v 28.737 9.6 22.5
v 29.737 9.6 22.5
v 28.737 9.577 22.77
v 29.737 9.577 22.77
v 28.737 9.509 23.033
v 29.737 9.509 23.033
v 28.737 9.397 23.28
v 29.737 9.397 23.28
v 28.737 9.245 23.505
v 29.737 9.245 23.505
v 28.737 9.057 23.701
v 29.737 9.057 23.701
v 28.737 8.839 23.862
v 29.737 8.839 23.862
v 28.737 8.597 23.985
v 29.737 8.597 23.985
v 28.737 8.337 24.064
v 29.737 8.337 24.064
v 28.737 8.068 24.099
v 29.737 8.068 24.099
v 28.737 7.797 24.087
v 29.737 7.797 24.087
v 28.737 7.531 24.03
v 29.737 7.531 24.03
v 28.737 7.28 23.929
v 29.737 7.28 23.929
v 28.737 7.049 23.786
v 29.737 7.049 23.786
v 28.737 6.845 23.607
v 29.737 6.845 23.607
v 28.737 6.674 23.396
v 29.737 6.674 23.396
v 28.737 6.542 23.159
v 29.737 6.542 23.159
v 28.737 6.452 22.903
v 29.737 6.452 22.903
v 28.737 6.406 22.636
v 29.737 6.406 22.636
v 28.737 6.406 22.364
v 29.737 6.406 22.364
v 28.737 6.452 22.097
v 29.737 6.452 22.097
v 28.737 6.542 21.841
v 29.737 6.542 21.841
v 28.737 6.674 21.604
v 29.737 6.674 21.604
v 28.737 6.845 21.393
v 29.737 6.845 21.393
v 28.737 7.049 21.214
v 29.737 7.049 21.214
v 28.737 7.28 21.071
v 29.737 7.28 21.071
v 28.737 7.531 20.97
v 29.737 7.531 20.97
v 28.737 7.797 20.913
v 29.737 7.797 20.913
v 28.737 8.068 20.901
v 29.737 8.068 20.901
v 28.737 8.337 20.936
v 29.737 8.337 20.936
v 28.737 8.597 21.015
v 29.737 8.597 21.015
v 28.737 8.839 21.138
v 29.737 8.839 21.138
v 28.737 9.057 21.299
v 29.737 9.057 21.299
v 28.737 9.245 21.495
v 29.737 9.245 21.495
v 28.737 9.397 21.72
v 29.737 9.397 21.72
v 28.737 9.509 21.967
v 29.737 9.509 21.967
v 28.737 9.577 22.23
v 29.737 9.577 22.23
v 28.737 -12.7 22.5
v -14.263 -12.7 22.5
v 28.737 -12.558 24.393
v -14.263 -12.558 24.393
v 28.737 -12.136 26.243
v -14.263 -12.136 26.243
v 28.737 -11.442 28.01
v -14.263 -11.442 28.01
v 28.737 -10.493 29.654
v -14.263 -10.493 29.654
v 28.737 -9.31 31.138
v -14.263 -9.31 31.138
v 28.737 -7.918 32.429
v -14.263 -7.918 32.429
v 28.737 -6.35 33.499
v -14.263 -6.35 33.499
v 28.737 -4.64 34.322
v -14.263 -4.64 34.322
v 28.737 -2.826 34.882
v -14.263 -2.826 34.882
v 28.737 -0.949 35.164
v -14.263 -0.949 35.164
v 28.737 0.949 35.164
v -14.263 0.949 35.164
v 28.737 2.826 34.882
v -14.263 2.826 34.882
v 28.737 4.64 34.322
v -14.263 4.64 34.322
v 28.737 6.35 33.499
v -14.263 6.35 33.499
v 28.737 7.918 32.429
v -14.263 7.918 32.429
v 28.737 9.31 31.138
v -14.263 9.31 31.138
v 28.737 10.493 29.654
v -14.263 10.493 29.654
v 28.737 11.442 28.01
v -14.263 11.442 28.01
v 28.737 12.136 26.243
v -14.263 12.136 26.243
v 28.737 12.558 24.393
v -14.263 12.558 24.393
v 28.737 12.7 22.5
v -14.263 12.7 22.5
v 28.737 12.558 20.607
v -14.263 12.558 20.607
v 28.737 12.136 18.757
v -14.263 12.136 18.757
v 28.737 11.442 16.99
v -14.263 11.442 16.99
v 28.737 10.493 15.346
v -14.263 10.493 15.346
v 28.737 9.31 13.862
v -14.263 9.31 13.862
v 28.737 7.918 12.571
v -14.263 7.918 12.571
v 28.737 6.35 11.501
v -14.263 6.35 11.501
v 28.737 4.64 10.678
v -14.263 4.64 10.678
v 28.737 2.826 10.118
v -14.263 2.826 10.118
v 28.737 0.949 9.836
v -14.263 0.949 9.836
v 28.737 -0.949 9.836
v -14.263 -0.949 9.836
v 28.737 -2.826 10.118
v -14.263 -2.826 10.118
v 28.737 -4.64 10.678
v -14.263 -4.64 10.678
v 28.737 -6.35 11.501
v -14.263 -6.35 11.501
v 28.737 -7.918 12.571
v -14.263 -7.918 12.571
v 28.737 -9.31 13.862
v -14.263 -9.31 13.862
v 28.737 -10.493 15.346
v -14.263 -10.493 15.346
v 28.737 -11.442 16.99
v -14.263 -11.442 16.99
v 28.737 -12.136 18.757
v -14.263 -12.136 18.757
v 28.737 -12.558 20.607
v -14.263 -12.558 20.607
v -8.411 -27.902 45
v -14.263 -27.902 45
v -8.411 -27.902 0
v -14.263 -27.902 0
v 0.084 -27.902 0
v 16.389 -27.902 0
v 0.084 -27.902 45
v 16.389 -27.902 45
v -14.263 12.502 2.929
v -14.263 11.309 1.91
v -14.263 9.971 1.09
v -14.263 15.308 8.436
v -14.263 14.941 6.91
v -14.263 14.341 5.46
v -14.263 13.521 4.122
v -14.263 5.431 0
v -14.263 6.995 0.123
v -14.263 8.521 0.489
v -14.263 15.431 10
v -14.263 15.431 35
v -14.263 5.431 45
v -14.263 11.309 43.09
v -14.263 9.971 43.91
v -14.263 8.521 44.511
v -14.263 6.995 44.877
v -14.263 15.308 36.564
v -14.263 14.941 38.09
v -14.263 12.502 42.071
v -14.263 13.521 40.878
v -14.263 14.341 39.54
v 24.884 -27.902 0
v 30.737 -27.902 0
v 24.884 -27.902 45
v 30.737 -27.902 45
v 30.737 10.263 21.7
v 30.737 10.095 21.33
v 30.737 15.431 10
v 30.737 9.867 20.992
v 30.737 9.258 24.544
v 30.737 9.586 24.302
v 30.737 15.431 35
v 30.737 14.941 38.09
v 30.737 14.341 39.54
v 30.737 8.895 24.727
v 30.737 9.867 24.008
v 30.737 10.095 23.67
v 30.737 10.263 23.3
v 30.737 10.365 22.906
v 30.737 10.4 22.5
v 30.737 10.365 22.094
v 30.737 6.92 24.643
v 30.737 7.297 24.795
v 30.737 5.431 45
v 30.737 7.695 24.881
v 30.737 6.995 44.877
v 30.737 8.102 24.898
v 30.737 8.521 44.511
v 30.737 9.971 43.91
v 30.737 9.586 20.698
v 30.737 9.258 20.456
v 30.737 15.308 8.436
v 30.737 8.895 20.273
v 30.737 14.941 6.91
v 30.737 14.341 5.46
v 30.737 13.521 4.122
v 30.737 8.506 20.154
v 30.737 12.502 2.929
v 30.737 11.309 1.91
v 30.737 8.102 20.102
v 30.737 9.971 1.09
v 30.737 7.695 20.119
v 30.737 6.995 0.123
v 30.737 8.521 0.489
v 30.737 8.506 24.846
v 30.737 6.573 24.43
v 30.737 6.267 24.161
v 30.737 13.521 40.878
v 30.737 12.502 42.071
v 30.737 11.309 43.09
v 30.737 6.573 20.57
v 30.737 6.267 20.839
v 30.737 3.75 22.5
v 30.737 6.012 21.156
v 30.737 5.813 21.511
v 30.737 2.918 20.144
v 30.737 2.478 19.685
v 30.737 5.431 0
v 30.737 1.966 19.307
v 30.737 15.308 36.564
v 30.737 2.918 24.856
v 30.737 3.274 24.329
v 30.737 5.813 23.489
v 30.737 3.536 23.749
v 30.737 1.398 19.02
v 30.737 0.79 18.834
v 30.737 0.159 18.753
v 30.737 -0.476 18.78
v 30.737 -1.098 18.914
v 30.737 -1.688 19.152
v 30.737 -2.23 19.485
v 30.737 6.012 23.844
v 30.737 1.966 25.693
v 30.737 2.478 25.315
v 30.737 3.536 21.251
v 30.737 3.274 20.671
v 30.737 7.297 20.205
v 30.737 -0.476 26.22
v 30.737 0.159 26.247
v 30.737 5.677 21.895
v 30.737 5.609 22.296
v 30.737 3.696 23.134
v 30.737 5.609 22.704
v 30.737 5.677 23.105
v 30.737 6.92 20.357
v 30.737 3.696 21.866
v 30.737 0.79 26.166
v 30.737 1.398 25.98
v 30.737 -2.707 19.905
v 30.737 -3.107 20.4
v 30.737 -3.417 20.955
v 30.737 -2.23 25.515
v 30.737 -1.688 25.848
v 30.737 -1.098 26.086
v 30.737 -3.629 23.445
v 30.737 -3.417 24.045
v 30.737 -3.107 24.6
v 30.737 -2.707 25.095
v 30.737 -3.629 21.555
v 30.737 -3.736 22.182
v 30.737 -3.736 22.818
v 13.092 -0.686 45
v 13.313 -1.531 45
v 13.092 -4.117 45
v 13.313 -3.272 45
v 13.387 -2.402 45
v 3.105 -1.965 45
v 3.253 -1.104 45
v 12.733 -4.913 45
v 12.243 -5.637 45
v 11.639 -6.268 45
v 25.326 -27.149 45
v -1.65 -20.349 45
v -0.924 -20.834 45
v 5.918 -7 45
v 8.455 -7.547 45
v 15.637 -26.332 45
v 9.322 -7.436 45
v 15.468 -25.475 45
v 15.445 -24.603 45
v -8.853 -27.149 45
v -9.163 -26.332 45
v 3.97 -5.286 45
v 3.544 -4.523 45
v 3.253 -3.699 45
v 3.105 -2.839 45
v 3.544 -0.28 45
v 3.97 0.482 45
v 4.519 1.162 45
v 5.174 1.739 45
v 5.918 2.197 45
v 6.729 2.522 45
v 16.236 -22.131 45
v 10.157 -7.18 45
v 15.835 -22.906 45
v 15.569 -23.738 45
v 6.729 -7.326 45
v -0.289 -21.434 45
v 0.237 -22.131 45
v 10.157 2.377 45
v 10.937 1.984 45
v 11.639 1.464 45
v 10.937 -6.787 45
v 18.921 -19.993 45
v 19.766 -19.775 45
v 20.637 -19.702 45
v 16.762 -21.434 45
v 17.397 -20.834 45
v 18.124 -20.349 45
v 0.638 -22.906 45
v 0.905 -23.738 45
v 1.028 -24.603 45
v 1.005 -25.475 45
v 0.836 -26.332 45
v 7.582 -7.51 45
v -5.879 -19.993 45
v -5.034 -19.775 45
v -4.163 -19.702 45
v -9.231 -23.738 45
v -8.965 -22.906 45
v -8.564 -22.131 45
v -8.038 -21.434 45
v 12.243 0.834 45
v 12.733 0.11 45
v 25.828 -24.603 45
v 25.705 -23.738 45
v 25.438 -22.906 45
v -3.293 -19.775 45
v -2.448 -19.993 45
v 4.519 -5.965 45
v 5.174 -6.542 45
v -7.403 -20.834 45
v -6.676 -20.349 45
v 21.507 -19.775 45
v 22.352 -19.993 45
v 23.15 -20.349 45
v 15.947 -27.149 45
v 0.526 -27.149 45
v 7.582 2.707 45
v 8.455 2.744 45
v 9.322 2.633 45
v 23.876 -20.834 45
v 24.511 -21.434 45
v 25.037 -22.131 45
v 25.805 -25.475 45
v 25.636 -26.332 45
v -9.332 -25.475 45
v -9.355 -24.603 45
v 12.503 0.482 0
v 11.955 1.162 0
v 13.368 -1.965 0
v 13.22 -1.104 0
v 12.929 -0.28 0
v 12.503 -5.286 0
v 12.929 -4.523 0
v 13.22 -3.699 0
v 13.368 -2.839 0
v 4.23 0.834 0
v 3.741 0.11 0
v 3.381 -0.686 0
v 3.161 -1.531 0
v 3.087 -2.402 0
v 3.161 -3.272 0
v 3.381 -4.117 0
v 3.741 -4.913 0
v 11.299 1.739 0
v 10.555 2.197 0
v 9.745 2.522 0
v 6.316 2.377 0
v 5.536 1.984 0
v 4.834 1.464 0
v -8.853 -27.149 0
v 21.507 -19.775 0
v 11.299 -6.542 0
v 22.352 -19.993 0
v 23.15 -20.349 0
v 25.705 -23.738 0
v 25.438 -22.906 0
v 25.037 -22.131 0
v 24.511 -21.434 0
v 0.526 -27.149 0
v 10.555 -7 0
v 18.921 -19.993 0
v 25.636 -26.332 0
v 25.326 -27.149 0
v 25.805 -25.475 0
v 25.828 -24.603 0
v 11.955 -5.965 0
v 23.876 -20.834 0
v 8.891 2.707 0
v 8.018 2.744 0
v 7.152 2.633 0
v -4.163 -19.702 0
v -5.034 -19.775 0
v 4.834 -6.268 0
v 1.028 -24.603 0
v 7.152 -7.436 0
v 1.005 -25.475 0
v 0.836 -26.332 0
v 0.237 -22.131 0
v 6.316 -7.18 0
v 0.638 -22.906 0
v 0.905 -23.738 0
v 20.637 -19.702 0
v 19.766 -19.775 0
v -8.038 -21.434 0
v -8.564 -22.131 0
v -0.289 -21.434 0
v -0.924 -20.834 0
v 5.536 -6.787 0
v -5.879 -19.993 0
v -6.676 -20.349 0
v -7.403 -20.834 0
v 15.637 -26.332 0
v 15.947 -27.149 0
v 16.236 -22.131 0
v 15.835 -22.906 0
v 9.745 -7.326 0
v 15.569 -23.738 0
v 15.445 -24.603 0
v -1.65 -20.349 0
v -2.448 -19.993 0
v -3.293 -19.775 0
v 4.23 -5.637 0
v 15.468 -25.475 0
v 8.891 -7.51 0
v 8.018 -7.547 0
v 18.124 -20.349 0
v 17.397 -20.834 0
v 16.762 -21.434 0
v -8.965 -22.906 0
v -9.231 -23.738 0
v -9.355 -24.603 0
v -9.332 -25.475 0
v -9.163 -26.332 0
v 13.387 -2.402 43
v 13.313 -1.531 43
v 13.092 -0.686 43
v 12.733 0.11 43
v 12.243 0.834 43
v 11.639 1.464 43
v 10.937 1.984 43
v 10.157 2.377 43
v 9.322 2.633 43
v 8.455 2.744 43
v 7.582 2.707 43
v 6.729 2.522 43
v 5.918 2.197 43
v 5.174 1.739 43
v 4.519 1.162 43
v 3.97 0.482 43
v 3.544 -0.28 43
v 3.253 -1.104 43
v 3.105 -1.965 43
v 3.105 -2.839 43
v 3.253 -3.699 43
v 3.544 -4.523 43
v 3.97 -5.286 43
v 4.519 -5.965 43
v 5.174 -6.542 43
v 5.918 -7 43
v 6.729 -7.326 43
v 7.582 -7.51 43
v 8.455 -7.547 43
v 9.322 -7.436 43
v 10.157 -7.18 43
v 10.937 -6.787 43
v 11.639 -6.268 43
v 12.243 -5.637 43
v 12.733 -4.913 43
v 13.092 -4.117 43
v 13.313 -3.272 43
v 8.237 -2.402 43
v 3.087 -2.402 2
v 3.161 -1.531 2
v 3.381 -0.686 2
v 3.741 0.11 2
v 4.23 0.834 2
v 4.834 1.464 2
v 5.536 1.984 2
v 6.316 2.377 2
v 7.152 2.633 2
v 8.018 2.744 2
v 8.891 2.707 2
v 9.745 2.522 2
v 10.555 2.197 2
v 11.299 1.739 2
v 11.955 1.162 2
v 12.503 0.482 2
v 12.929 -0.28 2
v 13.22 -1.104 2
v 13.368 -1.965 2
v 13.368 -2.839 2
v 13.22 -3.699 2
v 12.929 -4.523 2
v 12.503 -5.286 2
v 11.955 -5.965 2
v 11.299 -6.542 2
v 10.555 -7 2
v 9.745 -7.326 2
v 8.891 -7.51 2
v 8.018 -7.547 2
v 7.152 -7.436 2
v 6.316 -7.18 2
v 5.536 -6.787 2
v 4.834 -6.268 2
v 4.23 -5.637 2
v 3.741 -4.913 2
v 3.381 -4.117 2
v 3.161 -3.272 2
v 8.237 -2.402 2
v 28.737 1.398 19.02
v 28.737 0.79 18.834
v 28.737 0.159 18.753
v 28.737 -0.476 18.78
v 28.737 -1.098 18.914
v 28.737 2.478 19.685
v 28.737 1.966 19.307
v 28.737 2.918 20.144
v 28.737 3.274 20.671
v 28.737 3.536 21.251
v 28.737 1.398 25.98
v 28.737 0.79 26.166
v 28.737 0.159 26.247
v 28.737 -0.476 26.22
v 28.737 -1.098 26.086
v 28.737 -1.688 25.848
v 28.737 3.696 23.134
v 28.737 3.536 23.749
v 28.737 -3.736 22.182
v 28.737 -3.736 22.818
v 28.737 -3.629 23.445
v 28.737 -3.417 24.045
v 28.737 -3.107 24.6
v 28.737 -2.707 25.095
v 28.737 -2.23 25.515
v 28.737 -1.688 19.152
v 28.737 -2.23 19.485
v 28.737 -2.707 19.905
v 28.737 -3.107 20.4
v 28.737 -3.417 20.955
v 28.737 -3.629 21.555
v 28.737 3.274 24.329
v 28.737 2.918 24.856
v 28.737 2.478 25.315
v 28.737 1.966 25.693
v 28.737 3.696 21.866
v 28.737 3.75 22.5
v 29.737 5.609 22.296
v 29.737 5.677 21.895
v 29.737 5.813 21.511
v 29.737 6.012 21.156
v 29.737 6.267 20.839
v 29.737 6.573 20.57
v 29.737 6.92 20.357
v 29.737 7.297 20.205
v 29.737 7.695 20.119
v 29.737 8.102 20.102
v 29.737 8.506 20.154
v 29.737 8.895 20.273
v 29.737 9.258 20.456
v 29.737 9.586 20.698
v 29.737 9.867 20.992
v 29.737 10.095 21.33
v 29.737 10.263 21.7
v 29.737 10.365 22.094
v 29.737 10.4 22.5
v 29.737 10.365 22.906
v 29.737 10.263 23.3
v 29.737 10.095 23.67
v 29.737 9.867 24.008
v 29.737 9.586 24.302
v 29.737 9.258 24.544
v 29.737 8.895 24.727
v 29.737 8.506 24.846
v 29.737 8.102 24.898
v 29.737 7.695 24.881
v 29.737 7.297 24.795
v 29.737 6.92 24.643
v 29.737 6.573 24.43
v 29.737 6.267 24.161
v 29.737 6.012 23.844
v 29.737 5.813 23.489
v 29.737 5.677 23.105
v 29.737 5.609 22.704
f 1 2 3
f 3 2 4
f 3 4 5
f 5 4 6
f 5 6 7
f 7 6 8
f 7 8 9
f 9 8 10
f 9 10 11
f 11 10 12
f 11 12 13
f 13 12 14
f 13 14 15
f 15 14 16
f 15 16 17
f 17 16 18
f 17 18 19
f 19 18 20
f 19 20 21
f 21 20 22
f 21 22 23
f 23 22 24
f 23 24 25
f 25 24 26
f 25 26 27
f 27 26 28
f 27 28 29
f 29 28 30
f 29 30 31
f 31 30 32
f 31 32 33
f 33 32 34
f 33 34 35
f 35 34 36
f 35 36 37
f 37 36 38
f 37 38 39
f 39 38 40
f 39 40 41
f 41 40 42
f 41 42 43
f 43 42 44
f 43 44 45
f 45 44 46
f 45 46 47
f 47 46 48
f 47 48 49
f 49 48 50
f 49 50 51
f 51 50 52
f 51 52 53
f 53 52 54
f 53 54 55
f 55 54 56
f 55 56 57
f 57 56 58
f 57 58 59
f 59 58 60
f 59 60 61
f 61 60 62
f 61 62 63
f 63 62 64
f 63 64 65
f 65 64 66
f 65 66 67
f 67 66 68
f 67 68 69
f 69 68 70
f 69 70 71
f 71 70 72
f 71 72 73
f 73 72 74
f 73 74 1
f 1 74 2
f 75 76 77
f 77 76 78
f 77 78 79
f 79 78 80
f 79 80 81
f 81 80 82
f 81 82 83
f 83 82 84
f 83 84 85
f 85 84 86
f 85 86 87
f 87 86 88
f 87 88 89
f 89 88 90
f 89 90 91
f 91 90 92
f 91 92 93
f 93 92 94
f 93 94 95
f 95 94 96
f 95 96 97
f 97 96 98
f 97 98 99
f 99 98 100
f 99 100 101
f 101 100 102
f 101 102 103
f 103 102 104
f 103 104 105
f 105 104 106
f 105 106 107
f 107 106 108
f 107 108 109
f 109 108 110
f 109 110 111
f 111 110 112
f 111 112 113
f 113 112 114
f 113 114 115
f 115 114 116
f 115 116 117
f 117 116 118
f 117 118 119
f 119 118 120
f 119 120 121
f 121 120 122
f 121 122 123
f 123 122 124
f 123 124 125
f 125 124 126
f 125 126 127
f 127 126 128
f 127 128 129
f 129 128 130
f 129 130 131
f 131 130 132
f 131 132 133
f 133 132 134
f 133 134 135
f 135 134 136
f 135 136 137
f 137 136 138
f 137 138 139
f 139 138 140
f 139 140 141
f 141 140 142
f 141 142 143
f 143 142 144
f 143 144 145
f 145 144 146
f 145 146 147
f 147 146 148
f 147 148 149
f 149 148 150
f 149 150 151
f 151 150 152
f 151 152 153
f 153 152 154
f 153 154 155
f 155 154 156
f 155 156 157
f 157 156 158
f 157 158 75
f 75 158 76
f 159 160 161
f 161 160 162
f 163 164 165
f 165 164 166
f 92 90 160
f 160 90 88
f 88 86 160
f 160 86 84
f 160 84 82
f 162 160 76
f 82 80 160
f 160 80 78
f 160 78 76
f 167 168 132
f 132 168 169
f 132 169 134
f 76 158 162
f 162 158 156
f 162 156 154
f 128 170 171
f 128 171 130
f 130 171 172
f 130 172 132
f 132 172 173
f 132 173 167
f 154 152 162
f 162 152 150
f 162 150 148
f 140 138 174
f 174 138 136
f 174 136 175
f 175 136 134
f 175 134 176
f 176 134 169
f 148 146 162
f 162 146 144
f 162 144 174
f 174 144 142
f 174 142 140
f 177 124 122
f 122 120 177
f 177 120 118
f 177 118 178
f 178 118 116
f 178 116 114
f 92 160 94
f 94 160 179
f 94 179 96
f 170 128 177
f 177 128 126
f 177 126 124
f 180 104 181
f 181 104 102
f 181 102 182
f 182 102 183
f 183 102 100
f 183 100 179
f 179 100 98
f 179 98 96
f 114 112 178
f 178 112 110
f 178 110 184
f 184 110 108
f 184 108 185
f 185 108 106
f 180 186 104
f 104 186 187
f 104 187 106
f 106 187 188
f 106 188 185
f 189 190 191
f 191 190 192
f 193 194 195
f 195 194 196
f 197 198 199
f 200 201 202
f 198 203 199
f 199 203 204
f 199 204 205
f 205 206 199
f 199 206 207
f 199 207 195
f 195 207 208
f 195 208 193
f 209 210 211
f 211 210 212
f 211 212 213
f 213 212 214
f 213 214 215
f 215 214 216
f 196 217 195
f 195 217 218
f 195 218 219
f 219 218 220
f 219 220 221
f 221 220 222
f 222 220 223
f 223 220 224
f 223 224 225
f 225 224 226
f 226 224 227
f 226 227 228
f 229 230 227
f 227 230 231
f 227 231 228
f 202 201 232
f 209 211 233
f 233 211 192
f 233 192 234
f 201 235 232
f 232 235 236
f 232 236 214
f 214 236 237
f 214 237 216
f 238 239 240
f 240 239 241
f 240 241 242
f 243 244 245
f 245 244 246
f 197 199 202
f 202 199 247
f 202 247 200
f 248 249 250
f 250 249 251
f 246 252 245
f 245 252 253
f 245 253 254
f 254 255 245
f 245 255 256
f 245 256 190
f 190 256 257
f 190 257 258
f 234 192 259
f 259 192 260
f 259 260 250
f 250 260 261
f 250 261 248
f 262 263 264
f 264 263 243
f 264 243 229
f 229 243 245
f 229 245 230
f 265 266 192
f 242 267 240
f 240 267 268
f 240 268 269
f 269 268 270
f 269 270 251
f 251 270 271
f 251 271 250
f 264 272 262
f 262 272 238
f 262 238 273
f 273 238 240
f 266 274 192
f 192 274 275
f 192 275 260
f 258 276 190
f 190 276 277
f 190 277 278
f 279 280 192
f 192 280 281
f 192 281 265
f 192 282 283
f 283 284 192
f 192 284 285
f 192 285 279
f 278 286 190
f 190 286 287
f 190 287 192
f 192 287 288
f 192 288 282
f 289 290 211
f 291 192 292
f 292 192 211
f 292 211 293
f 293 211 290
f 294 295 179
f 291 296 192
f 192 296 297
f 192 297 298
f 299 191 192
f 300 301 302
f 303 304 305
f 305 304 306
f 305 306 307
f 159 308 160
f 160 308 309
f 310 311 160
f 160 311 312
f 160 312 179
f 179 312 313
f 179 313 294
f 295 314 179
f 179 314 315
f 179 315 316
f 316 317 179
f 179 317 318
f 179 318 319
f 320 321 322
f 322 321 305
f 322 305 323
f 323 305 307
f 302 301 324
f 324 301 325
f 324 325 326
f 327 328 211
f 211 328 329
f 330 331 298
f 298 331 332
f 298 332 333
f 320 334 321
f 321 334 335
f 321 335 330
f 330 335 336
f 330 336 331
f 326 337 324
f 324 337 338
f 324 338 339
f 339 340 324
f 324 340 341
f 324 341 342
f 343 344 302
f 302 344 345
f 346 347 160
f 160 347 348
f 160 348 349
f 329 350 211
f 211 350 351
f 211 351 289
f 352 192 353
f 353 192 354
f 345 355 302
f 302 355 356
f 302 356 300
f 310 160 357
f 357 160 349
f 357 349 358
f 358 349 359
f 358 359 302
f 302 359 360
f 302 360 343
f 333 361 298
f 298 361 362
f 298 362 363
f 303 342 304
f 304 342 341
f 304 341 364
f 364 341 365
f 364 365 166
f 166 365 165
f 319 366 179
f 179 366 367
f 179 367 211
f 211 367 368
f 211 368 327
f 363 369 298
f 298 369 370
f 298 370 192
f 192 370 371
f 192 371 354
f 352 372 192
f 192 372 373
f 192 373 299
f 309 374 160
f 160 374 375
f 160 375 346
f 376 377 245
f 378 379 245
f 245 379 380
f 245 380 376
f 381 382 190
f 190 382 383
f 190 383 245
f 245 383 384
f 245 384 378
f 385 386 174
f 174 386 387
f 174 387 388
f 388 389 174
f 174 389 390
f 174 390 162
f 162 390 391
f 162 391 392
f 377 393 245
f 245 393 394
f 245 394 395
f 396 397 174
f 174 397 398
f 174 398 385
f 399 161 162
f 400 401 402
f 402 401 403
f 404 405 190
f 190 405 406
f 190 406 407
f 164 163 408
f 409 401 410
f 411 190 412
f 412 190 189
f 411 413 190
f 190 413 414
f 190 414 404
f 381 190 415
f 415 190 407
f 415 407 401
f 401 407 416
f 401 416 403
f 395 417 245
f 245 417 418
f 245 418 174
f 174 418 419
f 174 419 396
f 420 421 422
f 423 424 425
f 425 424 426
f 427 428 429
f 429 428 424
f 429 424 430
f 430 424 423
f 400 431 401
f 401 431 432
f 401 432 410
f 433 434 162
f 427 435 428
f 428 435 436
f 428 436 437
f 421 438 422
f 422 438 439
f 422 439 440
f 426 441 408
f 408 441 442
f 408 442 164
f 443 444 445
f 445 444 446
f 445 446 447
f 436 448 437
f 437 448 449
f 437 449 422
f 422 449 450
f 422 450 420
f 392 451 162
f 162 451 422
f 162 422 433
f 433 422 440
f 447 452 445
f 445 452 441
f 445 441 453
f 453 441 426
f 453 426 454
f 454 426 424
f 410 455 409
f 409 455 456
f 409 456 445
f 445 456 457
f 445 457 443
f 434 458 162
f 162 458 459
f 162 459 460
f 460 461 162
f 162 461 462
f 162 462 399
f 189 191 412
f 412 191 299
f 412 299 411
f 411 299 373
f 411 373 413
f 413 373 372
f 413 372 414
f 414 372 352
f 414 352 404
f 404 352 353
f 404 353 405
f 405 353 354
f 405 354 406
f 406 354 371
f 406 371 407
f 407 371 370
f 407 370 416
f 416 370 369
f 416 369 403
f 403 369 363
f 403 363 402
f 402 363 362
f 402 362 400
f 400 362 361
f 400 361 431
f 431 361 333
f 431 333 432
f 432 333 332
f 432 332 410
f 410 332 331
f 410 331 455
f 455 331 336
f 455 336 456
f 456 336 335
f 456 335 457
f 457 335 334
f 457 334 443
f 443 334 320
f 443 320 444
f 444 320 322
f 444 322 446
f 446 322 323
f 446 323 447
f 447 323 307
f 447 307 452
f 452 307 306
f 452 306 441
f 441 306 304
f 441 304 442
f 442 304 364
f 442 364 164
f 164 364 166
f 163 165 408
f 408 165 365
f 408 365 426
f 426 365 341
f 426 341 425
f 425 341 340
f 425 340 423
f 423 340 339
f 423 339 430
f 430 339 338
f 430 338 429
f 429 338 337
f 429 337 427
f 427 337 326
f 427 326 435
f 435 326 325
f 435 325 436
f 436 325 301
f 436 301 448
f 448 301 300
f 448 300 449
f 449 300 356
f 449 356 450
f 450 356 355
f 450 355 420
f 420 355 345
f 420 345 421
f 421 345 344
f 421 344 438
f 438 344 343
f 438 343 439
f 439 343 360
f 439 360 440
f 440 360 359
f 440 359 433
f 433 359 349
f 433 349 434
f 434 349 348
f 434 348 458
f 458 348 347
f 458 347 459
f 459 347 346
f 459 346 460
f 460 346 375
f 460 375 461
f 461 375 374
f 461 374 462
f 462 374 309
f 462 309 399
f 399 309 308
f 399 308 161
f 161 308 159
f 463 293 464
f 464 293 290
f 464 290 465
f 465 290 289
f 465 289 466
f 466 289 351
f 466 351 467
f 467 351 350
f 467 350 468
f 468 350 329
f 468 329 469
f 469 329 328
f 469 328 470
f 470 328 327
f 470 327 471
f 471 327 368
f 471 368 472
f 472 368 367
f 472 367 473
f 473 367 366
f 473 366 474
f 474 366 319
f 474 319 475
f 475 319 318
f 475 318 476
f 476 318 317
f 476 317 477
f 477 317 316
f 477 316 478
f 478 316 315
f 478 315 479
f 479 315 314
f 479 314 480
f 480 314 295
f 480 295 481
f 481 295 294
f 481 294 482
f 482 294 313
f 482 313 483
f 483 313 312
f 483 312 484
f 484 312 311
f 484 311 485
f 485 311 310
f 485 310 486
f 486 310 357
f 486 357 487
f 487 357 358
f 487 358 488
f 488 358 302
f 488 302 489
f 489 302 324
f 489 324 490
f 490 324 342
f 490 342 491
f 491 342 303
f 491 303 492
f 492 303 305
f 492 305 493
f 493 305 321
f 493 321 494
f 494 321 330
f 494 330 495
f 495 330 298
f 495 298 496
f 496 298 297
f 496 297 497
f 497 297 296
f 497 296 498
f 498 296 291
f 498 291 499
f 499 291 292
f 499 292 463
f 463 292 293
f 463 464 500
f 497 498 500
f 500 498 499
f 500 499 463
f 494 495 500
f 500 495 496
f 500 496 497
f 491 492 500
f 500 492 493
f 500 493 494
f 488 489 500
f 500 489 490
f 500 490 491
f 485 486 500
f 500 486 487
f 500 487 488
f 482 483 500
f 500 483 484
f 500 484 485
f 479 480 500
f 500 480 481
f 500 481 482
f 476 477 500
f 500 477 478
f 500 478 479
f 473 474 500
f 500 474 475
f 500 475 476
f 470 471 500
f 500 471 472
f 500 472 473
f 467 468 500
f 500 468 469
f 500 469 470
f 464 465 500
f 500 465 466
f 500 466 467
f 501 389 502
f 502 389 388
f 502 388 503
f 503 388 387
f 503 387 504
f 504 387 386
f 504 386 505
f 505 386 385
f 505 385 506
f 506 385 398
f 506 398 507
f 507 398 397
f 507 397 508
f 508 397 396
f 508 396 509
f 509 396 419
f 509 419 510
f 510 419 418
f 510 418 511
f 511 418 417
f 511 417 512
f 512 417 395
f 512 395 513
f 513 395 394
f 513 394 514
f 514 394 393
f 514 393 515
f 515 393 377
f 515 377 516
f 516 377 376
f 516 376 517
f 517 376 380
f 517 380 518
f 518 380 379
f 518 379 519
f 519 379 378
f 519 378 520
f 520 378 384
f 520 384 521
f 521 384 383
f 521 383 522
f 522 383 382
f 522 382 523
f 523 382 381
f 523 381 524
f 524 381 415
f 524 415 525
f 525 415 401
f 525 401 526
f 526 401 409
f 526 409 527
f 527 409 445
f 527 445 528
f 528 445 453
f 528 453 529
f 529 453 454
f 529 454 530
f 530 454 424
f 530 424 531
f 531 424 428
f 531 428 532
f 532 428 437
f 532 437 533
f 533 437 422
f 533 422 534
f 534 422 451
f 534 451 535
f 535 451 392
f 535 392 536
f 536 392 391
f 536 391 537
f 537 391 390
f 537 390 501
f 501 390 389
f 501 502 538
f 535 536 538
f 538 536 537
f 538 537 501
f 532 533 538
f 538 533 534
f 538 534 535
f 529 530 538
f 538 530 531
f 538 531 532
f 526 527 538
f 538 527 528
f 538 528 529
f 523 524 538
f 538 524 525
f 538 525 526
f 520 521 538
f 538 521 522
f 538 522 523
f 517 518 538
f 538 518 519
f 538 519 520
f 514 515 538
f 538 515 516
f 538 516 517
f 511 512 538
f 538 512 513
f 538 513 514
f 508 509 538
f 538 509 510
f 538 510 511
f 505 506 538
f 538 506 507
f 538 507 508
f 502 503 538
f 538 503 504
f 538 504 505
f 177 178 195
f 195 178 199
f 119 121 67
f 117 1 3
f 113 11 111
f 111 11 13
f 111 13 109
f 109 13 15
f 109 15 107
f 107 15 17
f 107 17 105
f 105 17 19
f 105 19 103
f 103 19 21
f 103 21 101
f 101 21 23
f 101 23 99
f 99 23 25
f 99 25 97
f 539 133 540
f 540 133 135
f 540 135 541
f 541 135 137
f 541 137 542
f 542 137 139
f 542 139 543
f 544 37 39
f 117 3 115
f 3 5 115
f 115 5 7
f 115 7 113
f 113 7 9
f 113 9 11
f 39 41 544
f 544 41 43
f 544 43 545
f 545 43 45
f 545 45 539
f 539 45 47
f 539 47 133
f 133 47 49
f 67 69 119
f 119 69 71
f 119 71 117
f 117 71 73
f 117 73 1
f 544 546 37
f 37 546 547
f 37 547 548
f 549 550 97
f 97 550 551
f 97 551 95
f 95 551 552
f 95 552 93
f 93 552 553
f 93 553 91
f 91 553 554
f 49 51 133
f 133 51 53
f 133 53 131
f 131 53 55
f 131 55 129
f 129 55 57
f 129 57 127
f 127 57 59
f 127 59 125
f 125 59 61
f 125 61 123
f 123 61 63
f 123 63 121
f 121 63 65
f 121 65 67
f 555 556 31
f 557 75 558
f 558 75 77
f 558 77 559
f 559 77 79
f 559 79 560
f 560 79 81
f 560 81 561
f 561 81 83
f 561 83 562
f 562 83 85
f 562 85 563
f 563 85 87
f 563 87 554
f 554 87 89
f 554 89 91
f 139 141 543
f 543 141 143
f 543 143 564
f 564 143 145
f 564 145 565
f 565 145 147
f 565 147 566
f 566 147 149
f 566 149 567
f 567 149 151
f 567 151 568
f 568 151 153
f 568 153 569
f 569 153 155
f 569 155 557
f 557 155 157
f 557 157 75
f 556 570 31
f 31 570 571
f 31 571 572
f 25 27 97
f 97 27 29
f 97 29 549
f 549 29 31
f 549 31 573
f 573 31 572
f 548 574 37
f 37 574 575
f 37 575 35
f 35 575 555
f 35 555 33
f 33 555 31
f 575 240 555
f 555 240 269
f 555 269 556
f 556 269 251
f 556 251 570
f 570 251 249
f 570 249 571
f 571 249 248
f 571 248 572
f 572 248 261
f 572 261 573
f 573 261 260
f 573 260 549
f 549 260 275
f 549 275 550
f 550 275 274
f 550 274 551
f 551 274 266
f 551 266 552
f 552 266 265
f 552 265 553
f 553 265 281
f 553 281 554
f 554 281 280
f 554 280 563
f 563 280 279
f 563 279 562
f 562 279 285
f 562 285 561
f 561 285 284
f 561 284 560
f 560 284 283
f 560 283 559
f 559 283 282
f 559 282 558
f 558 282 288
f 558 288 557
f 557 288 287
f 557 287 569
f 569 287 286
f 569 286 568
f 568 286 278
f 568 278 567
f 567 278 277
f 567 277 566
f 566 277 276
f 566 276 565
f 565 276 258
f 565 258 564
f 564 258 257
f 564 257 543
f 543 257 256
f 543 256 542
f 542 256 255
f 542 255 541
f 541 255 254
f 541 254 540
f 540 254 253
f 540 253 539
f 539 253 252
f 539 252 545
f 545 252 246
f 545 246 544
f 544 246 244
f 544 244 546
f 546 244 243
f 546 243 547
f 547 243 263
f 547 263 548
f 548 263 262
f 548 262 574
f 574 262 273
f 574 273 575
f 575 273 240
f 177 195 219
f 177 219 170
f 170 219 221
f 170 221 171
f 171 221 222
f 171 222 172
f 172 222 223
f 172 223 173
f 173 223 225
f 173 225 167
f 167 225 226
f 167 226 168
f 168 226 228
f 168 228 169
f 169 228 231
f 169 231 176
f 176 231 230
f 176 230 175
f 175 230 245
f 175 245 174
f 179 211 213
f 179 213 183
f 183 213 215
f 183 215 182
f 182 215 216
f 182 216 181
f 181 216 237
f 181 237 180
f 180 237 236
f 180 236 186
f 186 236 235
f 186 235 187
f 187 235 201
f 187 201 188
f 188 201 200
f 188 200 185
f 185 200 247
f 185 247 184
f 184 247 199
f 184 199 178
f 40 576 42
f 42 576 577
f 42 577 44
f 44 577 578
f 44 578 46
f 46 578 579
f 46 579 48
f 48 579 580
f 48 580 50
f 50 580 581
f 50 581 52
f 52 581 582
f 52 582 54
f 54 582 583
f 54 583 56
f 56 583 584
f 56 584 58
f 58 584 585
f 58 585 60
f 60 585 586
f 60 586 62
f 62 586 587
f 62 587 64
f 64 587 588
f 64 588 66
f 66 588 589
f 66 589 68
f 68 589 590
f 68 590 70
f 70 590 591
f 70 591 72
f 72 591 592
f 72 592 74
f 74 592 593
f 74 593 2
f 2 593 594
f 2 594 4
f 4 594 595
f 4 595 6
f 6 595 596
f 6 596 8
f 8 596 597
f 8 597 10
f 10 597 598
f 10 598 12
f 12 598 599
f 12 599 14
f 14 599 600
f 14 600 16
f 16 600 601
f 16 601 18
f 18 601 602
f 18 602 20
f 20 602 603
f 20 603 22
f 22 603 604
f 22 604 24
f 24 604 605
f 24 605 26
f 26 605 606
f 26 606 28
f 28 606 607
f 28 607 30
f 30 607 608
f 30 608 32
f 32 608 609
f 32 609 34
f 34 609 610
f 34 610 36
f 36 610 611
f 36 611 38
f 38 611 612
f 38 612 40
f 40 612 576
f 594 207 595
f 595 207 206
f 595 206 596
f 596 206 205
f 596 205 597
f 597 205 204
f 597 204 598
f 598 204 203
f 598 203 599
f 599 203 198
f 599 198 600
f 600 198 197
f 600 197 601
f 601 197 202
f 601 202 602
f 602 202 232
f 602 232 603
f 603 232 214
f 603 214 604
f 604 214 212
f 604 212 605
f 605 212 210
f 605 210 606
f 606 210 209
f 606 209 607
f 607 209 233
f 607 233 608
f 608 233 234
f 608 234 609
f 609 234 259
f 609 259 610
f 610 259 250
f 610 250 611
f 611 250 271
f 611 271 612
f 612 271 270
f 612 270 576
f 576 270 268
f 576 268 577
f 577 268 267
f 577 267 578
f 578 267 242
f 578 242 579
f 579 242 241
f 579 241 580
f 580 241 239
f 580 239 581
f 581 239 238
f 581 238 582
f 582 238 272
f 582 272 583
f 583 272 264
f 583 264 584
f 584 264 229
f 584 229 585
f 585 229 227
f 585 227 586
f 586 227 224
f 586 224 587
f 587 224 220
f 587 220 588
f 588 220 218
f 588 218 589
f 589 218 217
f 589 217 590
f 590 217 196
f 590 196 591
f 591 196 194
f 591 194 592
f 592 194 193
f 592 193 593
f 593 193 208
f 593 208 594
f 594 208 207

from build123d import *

# Parameters (mm, degrees)
SKETCH1_W           = 45
SKETCH1_H           = 50
BOSS_EXTRUDE1_DEPTH = 45
SKETCH2_R           = 5.2
CUT_EXTRUDE1_DEPTH  = 45
SKETCH9_R           = 5.15
CUT_EXTRUDE6_DEPTH  = 2
SKETCH10_R          = 5.15
CUT_EXTRUDE7_DEPTH  = 2
SKETCH12_R          = 12.7
CUT_EXTRUDE8_DEPTH  = 46
SKETCH13_W          = 45
SKETCH13_H          = 6.66747138
CUT_EXTRUDE9_DEPTH  = 46
SKETCH16_R          = 13.25
SKETCH16_R_2        = 3.75
BOSS_EXTRUDE3_DEPTH = 2
FILLET1_R           = 10
SKETCH17_R          = 1.6
CUT_EXTRUDE10_DEPTH = 10
SKETCH18_R          = 2.4
CUT_EXTRUDE11_DEPTH = 1


with BuildPart() as part:
    # Sketch1 → Boss-Extrude1 (new body)
    with BuildSketch(Plane.XY):
        with Locations((8.236607143, -2.901785714)):
            Rectangle(SKETCH1_W, SKETCH1_H)
    extrude(amount=BOSS_EXTRUDE1_DEPTH)

    # Sketch2 → Cut-Extrude1 (cut)
    with BuildSketch(Plane.XY.offset(45)):
        with Locations((-4.163392857, -24.901785714)):
            Circle(SKETCH2_R)
        with Locations((20.636607143, -24.901785714)):
            Circle(SKETCH2_R)
    extrude(amount=-CUT_EXTRUDE1_DEPTH, mode=Mode.SUBTRACT)

    # Sketch9 → Cut-Extrude6 (cut)
    with BuildSketch(Plane.XY.offset(45)):
        with Locations((8.236607143, -2.401785714)):
            Circle(SKETCH9_R)
    extrude(amount=-CUT_EXTRUDE6_DEPTH, mode=Mode.SUBTRACT)

    # Sketch10 → Cut-Extrude7 (cut)
    with BuildSketch(Plane(origin=(0, 0, 0), x_dir=(-1, 0, 0), z_dir=(0, 0, -1))):
        with Locations((-8.236607143, -2.401785714)):
            Circle(SKETCH10_R)
    extrude(amount=-CUT_EXTRUDE7_DEPTH, mode=Mode.SUBTRACT)

    # Sketch12 → Cut-Extrude8 (cut)
    with BuildSketch(Plane.ZY.offset(14.263392857)):
        with Locations((22.5, 0)):
            Circle(SKETCH12_R)
    extrude(amount=-CUT_EXTRUDE8_DEPTH, mode=Mode.SUBTRACT)

    # Sketch13 → Cut-Extrude9 (cut)
    with BuildSketch(Plane.ZY.offset(14.263392857)):
        with Locations((22.5, 18.764478596)):
            Rectangle(SKETCH13_W, SKETCH13_H)
    extrude(amount=-CUT_EXTRUDE9_DEPTH, mode=Mode.SUBTRACT)

    # Sketch16 → Boss-Extrude3 (add)
    with BuildSketch(Plane(origin=(30.736607143, 0, 0), x_dir=(0, 0, -1), z_dir=(1, 0, 0))):
        with Locations((-22.5, 0)):
            Circle(SKETCH16_R)
        with Locations((-22.5, 0)):
            Circle(SKETCH16_R_2, mode=Mode.SUBTRACT)
    extrude(amount=-BOSS_EXTRUDE3_DEPTH)

    # Fillet1
    fillet1_edges = [part.edges().sort_by_distance(p)[0] for p in [
        (8.236607143, 15.430742906, 0),
        (8.236607143, 15.430742906, 45),
    ]]
    fillet(fillet1_edges, radius=FILLET1_R)

    # Sketch17 → Cut-Extrude10 (cut)
    with BuildSketch(Plane(origin=(30.736607143, 0, 0), x_dir=(0, 0, -1), z_dir=(1, 0, 0))):
        with Locations((-22.5, 8)):
            Circle(SKETCH17_R)
    extrude(amount=-CUT_EXTRUDE10_DEPTH, mode=Mode.SUBTRACT)

    # Sketch18 → Cut-Extrude11 (cut)
    with BuildSketch(Plane(origin=(30.736607143, 0, 0), x_dir=(0, 0, -1), z_dir=(1, 0, 0))):
        with Locations((-22.5, 8)):
            Circle(SKETCH18_R)
    extrude(amount=-CUT_EXTRUDE11_DEPTH, mode=Mode.SUBTRACT)


solid = part.part
